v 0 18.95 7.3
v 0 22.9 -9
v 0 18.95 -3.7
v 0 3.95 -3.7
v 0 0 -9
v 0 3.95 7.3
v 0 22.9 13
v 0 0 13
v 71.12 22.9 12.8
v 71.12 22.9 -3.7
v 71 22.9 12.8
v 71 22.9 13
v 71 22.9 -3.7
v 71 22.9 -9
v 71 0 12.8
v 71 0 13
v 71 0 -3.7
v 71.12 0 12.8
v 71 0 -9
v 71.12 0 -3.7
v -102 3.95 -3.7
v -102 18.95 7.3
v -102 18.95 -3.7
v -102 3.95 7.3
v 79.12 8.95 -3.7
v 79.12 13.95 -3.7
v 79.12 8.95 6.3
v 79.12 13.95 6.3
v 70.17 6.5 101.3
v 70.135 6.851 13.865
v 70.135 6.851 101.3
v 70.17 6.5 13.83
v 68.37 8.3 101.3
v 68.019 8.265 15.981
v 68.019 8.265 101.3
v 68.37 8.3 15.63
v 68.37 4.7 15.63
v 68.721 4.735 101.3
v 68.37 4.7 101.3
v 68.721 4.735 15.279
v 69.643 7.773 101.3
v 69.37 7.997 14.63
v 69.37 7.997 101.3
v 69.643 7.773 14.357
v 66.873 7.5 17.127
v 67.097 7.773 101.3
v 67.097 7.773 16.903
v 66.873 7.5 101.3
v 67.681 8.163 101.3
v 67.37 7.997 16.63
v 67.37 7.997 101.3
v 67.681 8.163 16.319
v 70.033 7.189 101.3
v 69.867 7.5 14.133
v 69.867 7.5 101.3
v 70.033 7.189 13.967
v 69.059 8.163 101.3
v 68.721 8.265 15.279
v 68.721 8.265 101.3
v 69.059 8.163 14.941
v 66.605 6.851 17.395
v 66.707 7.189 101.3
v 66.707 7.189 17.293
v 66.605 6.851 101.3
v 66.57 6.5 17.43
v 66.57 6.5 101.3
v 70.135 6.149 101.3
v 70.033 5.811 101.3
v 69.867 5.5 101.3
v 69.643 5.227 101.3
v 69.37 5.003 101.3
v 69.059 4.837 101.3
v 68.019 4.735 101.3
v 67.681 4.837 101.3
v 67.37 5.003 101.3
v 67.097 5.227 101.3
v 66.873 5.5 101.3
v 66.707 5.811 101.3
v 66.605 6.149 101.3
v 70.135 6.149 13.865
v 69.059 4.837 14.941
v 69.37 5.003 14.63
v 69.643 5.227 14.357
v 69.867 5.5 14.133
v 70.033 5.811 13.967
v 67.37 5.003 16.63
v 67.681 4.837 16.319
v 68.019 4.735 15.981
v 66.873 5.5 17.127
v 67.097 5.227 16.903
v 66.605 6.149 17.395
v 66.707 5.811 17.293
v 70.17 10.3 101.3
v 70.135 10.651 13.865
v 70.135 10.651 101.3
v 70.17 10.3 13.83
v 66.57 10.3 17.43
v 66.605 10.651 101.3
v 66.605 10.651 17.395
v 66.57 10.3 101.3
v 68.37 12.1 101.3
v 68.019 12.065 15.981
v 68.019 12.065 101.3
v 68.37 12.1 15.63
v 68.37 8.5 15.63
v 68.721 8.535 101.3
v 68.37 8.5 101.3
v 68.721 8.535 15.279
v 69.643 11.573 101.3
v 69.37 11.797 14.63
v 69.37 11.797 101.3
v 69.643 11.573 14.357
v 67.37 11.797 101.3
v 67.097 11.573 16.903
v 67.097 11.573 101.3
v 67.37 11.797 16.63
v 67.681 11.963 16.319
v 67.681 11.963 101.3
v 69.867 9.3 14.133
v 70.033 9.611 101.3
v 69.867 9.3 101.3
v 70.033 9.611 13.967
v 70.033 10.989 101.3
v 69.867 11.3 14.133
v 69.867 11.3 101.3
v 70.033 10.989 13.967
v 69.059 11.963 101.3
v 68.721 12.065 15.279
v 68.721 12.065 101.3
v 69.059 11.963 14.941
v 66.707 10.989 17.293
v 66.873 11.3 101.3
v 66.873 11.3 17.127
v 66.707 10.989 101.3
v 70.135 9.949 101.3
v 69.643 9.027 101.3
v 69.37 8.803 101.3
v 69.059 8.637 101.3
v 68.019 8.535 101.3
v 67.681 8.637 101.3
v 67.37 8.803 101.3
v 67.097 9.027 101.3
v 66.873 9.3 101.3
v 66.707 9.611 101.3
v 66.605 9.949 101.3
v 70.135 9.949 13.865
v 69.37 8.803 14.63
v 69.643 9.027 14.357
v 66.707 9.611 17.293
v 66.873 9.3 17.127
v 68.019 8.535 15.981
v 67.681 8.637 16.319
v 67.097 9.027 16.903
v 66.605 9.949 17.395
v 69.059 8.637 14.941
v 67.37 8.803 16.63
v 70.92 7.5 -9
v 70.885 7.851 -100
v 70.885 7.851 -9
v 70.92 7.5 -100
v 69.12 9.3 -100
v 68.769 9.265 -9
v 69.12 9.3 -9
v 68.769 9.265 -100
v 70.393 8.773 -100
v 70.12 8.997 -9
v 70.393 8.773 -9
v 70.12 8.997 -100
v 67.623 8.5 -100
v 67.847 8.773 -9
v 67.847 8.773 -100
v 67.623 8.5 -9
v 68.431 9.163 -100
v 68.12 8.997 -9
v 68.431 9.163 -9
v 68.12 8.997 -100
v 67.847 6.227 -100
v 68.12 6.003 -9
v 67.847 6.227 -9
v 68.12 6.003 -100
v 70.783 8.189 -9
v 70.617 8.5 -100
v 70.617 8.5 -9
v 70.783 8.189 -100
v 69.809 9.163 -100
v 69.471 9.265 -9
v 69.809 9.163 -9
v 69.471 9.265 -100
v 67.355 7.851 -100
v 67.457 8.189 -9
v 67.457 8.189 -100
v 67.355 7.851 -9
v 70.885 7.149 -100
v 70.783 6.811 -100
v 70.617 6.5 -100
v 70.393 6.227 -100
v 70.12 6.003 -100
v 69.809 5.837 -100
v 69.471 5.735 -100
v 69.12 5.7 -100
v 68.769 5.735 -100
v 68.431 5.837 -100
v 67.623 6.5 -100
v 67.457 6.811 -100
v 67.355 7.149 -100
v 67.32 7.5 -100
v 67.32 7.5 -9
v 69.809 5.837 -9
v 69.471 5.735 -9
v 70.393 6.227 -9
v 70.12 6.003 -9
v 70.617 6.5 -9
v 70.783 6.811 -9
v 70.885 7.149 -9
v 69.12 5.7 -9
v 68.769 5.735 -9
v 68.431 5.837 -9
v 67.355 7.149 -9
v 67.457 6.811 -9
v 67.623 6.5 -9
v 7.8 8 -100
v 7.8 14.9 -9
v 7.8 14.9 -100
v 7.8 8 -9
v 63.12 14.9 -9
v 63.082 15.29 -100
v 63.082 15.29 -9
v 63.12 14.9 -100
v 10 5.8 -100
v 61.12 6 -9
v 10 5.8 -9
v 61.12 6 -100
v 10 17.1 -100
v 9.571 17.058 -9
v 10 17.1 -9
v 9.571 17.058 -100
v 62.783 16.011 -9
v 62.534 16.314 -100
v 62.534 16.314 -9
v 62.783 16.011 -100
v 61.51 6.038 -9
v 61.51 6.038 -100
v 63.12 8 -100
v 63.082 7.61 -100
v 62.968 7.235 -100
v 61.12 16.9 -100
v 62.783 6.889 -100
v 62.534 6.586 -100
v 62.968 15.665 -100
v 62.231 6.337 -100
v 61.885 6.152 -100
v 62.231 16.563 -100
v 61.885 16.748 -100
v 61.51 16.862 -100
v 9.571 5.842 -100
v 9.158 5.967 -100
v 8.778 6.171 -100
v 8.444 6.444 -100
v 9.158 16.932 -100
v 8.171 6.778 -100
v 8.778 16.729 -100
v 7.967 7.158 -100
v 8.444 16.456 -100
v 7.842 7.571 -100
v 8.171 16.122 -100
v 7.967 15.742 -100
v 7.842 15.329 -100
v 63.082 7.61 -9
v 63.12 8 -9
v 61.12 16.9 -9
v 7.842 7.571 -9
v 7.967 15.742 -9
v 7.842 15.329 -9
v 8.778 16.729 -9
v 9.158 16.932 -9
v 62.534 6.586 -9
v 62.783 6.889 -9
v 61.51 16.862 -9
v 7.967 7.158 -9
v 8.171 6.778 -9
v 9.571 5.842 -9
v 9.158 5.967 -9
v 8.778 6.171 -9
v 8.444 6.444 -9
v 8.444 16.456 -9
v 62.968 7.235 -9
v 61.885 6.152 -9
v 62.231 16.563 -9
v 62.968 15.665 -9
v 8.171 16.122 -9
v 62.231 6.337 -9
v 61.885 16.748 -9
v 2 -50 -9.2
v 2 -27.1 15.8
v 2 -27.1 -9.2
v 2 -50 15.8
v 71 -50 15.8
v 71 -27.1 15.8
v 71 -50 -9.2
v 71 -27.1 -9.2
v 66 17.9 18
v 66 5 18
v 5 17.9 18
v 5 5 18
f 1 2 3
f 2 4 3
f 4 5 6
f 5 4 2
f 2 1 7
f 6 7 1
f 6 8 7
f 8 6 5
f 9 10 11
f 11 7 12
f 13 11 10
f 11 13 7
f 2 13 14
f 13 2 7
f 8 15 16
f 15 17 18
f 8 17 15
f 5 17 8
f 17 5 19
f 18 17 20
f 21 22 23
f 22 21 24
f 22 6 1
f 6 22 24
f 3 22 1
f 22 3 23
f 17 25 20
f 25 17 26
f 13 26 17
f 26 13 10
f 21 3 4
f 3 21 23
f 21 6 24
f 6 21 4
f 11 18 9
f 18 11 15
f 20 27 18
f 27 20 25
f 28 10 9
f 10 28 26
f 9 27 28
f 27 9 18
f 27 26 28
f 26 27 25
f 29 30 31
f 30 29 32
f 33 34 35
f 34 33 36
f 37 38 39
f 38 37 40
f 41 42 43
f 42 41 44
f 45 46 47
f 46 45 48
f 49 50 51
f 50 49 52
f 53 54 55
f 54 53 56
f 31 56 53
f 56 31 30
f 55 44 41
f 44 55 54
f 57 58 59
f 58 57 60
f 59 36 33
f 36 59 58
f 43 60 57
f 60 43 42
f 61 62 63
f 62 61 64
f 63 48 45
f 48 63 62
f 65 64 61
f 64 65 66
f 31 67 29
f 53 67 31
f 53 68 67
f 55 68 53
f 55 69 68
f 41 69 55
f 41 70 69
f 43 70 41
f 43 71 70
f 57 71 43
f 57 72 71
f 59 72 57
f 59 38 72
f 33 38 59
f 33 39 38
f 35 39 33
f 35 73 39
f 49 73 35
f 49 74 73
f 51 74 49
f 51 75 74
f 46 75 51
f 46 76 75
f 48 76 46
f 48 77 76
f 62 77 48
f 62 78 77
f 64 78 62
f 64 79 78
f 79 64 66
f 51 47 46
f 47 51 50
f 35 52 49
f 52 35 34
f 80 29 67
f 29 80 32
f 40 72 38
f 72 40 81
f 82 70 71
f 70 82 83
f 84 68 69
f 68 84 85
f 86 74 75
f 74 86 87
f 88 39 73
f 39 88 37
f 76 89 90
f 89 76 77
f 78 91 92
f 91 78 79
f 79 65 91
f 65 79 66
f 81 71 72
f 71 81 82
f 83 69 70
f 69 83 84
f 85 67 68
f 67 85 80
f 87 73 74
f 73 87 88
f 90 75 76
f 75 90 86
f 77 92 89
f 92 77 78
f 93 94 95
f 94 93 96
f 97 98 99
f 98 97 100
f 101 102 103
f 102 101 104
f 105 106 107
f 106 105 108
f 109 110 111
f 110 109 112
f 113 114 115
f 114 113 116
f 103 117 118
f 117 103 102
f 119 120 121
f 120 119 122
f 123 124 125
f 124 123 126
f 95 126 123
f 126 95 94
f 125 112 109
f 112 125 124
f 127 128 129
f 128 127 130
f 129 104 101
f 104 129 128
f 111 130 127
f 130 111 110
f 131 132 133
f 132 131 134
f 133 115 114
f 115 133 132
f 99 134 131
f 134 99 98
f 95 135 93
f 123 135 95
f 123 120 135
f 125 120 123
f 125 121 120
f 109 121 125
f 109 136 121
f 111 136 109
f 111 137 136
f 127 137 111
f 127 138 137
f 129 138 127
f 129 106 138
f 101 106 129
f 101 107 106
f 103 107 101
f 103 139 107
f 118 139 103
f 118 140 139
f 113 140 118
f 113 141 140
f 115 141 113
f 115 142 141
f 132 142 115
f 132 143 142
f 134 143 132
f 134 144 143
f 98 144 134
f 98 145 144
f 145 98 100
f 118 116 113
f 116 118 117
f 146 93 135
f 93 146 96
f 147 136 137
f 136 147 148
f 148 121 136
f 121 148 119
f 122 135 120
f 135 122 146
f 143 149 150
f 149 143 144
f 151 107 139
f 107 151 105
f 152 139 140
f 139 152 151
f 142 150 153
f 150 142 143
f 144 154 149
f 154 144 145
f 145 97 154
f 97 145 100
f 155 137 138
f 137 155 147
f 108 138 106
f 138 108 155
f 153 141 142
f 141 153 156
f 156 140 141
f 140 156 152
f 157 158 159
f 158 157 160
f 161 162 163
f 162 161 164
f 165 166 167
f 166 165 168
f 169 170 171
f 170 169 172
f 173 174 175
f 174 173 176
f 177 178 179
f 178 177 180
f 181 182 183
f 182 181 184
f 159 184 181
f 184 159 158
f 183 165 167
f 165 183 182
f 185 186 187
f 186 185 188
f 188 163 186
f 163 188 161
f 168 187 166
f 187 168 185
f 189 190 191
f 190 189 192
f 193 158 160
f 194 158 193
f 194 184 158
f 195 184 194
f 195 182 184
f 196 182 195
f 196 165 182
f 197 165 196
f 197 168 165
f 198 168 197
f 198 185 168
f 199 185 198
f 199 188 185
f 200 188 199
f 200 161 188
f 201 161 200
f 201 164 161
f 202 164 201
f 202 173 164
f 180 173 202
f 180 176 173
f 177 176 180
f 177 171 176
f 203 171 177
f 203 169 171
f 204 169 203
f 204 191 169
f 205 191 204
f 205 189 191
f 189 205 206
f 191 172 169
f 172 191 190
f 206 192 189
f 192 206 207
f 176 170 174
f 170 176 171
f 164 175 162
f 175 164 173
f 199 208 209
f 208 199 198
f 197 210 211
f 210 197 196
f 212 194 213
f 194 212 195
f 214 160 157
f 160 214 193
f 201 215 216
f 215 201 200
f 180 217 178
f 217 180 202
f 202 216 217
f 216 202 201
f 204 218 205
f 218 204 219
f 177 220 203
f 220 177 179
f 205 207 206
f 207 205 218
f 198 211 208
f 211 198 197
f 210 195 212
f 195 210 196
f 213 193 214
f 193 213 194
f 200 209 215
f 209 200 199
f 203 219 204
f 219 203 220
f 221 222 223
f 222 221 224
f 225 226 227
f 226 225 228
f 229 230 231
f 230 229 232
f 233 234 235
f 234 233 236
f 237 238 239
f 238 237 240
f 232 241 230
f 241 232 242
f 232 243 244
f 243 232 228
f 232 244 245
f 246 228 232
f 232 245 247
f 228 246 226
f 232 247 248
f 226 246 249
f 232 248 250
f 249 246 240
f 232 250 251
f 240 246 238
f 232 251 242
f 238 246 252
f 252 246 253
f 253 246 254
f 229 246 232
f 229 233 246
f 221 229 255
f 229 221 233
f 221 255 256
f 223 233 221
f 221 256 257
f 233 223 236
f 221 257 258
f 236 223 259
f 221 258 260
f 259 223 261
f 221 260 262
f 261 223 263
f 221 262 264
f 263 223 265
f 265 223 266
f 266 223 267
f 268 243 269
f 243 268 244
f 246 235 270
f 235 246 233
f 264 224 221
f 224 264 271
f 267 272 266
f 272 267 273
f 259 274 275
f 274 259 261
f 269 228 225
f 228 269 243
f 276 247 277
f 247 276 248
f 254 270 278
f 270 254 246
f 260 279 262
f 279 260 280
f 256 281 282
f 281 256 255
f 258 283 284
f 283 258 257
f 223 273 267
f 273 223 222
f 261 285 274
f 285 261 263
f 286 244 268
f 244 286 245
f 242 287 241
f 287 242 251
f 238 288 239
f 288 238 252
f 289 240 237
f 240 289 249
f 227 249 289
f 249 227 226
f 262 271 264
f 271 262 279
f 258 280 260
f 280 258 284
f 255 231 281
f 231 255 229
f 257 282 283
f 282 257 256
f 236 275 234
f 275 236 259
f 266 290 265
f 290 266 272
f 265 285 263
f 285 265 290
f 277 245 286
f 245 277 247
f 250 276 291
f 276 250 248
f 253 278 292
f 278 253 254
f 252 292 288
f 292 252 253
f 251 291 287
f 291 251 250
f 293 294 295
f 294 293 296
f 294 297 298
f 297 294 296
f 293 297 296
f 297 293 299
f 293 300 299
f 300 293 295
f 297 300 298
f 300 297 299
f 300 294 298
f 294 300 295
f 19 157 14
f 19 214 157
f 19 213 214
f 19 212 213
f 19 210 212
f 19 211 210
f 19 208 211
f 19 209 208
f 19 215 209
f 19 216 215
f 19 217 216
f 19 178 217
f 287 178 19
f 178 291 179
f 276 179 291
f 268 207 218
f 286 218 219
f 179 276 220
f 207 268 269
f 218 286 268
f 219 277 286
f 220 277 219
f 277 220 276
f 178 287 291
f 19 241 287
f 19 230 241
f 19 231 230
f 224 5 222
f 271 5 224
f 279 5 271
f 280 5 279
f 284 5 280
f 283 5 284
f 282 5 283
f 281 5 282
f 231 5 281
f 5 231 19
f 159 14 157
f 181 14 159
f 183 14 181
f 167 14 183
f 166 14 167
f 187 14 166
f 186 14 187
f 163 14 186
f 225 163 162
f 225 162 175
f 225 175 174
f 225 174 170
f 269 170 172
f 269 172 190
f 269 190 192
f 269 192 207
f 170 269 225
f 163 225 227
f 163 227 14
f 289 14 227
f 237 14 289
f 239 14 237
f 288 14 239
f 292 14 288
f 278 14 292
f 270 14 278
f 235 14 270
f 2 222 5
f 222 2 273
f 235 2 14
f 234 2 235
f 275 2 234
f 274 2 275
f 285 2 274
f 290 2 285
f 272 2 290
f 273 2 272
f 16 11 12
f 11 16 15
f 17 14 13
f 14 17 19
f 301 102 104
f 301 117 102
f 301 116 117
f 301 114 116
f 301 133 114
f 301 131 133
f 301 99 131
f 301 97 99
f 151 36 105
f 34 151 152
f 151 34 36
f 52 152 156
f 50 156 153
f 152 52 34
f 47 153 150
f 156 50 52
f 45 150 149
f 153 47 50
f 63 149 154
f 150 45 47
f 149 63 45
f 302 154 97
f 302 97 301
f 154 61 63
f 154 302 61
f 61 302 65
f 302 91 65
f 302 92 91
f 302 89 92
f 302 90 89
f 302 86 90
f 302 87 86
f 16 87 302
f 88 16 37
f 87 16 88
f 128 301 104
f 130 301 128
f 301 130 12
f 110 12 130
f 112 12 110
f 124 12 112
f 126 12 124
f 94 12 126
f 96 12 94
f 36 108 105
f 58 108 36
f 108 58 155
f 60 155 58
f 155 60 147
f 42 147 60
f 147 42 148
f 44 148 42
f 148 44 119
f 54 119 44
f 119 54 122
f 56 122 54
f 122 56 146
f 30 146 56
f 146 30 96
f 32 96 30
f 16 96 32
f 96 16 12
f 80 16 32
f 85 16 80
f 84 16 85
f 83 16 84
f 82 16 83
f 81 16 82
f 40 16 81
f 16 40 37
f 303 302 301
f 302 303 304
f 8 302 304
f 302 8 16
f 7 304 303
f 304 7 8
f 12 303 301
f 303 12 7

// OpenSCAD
// Arduino Yun Mini 3D model for planning, http://vor.space
// ©Futurice Oy, paul.houghton@futurice.com, CC-attribution-sharealike license, http://creativecommons.org/licenses/by-sa/4.0/

$fn = 32;

length = 71.12;
width = 22.9;
height = 1.3;
header_length = 69;
header_width = 3;
header_height = 9.5;
header_top_clearance = 5;
button_radius = 1.8;

arduino_yun_mini();

module top_space(s=10) {
    polyhedron(points=[[s,s,0],[s,-s,0],[-s,-s,0],[-s,s,0],[0,0,s]],
    faces=[[0,1,4],[1,2,4],[2,3,4],[3,0,4],[1,0,3],[2,1,3]]);
}

module arduino_yun_mini() {
    difference() {
        color("green") board();
        union() {
            hole(x = 2.5, y = width - 4);
            hole(x = length - 2, y = 2);
        }
    }

    color("magenta") usb_power();
    color("yellow") board_space();
    color("red") leds();
    color("blue") button(y = 6.5);
    color("blue") button(y = 10.3);
    color("violet") bottom_button(y = 10.3);
    color("orange") hull() {
         bottom_slot(y = 8);
         bottom_slot(y = width - 8);
    }
    translate([0,-50,0]) color("white") hull() {
            header(x=2, z=height, y=0);
            header(x=2, z=height, y=width-header_width);
            header(x=2, z=-9.2, y=0);
            header(x=2, z=-9.2, y=width-header_width);
    }

    color("black") minkowski() {
        translate([header_top_clearance,header_top_clearance,-header_top_clearance-4]) cube([71-2*header_top_clearance, 22.9-2*header_top_clearance, 27-header_top_clearance]);
        top_space(header_top_clearance);
    }
}

module board() {
    cube([length, width, height]);
}

module usb_power() {
    translate([-102, (width - 15) / 2, height - 5]) cube([100.5 + length, 15, 3 + 8]);
}

module board_space() {
    hull() {
        translate([0, 0, height - 5]) cube([length, width, 16.5]);
        translate([length, (width-5)/2, height-5]) cube([8, 5, 10]);
    }
}

module header(x=2, y=0, z=0) {
    translate([x, y, z]) cube([header_length, header_width, header_height + header_top_clearance]);
}

module leds() {
    translate([header_length, 0, height]) cube([2, width/2, 1]);
}

module button(y = 0) {
    translate([length - 2.75, y, height]) cylinder(r=button_radius, h=100);    
}

module bottom_button(bx = length - 2, by = 7.5) {
    translate([bx, by, -100]) cylinder(r=button_radius, h=100); 
}

module bottom_slot(y = 0) {
    hull() {
        translate([length - 10, y, -100]) cylinder(r=2, h=100); 
        translate([10, y, -100]) cylinder(r=2.2, h=100); 
    }
}

module hole(x = 0, y = 0) {
    translate([x, y, -9]) cylinder(h = 10 + height, r = 2.5/2);
}
